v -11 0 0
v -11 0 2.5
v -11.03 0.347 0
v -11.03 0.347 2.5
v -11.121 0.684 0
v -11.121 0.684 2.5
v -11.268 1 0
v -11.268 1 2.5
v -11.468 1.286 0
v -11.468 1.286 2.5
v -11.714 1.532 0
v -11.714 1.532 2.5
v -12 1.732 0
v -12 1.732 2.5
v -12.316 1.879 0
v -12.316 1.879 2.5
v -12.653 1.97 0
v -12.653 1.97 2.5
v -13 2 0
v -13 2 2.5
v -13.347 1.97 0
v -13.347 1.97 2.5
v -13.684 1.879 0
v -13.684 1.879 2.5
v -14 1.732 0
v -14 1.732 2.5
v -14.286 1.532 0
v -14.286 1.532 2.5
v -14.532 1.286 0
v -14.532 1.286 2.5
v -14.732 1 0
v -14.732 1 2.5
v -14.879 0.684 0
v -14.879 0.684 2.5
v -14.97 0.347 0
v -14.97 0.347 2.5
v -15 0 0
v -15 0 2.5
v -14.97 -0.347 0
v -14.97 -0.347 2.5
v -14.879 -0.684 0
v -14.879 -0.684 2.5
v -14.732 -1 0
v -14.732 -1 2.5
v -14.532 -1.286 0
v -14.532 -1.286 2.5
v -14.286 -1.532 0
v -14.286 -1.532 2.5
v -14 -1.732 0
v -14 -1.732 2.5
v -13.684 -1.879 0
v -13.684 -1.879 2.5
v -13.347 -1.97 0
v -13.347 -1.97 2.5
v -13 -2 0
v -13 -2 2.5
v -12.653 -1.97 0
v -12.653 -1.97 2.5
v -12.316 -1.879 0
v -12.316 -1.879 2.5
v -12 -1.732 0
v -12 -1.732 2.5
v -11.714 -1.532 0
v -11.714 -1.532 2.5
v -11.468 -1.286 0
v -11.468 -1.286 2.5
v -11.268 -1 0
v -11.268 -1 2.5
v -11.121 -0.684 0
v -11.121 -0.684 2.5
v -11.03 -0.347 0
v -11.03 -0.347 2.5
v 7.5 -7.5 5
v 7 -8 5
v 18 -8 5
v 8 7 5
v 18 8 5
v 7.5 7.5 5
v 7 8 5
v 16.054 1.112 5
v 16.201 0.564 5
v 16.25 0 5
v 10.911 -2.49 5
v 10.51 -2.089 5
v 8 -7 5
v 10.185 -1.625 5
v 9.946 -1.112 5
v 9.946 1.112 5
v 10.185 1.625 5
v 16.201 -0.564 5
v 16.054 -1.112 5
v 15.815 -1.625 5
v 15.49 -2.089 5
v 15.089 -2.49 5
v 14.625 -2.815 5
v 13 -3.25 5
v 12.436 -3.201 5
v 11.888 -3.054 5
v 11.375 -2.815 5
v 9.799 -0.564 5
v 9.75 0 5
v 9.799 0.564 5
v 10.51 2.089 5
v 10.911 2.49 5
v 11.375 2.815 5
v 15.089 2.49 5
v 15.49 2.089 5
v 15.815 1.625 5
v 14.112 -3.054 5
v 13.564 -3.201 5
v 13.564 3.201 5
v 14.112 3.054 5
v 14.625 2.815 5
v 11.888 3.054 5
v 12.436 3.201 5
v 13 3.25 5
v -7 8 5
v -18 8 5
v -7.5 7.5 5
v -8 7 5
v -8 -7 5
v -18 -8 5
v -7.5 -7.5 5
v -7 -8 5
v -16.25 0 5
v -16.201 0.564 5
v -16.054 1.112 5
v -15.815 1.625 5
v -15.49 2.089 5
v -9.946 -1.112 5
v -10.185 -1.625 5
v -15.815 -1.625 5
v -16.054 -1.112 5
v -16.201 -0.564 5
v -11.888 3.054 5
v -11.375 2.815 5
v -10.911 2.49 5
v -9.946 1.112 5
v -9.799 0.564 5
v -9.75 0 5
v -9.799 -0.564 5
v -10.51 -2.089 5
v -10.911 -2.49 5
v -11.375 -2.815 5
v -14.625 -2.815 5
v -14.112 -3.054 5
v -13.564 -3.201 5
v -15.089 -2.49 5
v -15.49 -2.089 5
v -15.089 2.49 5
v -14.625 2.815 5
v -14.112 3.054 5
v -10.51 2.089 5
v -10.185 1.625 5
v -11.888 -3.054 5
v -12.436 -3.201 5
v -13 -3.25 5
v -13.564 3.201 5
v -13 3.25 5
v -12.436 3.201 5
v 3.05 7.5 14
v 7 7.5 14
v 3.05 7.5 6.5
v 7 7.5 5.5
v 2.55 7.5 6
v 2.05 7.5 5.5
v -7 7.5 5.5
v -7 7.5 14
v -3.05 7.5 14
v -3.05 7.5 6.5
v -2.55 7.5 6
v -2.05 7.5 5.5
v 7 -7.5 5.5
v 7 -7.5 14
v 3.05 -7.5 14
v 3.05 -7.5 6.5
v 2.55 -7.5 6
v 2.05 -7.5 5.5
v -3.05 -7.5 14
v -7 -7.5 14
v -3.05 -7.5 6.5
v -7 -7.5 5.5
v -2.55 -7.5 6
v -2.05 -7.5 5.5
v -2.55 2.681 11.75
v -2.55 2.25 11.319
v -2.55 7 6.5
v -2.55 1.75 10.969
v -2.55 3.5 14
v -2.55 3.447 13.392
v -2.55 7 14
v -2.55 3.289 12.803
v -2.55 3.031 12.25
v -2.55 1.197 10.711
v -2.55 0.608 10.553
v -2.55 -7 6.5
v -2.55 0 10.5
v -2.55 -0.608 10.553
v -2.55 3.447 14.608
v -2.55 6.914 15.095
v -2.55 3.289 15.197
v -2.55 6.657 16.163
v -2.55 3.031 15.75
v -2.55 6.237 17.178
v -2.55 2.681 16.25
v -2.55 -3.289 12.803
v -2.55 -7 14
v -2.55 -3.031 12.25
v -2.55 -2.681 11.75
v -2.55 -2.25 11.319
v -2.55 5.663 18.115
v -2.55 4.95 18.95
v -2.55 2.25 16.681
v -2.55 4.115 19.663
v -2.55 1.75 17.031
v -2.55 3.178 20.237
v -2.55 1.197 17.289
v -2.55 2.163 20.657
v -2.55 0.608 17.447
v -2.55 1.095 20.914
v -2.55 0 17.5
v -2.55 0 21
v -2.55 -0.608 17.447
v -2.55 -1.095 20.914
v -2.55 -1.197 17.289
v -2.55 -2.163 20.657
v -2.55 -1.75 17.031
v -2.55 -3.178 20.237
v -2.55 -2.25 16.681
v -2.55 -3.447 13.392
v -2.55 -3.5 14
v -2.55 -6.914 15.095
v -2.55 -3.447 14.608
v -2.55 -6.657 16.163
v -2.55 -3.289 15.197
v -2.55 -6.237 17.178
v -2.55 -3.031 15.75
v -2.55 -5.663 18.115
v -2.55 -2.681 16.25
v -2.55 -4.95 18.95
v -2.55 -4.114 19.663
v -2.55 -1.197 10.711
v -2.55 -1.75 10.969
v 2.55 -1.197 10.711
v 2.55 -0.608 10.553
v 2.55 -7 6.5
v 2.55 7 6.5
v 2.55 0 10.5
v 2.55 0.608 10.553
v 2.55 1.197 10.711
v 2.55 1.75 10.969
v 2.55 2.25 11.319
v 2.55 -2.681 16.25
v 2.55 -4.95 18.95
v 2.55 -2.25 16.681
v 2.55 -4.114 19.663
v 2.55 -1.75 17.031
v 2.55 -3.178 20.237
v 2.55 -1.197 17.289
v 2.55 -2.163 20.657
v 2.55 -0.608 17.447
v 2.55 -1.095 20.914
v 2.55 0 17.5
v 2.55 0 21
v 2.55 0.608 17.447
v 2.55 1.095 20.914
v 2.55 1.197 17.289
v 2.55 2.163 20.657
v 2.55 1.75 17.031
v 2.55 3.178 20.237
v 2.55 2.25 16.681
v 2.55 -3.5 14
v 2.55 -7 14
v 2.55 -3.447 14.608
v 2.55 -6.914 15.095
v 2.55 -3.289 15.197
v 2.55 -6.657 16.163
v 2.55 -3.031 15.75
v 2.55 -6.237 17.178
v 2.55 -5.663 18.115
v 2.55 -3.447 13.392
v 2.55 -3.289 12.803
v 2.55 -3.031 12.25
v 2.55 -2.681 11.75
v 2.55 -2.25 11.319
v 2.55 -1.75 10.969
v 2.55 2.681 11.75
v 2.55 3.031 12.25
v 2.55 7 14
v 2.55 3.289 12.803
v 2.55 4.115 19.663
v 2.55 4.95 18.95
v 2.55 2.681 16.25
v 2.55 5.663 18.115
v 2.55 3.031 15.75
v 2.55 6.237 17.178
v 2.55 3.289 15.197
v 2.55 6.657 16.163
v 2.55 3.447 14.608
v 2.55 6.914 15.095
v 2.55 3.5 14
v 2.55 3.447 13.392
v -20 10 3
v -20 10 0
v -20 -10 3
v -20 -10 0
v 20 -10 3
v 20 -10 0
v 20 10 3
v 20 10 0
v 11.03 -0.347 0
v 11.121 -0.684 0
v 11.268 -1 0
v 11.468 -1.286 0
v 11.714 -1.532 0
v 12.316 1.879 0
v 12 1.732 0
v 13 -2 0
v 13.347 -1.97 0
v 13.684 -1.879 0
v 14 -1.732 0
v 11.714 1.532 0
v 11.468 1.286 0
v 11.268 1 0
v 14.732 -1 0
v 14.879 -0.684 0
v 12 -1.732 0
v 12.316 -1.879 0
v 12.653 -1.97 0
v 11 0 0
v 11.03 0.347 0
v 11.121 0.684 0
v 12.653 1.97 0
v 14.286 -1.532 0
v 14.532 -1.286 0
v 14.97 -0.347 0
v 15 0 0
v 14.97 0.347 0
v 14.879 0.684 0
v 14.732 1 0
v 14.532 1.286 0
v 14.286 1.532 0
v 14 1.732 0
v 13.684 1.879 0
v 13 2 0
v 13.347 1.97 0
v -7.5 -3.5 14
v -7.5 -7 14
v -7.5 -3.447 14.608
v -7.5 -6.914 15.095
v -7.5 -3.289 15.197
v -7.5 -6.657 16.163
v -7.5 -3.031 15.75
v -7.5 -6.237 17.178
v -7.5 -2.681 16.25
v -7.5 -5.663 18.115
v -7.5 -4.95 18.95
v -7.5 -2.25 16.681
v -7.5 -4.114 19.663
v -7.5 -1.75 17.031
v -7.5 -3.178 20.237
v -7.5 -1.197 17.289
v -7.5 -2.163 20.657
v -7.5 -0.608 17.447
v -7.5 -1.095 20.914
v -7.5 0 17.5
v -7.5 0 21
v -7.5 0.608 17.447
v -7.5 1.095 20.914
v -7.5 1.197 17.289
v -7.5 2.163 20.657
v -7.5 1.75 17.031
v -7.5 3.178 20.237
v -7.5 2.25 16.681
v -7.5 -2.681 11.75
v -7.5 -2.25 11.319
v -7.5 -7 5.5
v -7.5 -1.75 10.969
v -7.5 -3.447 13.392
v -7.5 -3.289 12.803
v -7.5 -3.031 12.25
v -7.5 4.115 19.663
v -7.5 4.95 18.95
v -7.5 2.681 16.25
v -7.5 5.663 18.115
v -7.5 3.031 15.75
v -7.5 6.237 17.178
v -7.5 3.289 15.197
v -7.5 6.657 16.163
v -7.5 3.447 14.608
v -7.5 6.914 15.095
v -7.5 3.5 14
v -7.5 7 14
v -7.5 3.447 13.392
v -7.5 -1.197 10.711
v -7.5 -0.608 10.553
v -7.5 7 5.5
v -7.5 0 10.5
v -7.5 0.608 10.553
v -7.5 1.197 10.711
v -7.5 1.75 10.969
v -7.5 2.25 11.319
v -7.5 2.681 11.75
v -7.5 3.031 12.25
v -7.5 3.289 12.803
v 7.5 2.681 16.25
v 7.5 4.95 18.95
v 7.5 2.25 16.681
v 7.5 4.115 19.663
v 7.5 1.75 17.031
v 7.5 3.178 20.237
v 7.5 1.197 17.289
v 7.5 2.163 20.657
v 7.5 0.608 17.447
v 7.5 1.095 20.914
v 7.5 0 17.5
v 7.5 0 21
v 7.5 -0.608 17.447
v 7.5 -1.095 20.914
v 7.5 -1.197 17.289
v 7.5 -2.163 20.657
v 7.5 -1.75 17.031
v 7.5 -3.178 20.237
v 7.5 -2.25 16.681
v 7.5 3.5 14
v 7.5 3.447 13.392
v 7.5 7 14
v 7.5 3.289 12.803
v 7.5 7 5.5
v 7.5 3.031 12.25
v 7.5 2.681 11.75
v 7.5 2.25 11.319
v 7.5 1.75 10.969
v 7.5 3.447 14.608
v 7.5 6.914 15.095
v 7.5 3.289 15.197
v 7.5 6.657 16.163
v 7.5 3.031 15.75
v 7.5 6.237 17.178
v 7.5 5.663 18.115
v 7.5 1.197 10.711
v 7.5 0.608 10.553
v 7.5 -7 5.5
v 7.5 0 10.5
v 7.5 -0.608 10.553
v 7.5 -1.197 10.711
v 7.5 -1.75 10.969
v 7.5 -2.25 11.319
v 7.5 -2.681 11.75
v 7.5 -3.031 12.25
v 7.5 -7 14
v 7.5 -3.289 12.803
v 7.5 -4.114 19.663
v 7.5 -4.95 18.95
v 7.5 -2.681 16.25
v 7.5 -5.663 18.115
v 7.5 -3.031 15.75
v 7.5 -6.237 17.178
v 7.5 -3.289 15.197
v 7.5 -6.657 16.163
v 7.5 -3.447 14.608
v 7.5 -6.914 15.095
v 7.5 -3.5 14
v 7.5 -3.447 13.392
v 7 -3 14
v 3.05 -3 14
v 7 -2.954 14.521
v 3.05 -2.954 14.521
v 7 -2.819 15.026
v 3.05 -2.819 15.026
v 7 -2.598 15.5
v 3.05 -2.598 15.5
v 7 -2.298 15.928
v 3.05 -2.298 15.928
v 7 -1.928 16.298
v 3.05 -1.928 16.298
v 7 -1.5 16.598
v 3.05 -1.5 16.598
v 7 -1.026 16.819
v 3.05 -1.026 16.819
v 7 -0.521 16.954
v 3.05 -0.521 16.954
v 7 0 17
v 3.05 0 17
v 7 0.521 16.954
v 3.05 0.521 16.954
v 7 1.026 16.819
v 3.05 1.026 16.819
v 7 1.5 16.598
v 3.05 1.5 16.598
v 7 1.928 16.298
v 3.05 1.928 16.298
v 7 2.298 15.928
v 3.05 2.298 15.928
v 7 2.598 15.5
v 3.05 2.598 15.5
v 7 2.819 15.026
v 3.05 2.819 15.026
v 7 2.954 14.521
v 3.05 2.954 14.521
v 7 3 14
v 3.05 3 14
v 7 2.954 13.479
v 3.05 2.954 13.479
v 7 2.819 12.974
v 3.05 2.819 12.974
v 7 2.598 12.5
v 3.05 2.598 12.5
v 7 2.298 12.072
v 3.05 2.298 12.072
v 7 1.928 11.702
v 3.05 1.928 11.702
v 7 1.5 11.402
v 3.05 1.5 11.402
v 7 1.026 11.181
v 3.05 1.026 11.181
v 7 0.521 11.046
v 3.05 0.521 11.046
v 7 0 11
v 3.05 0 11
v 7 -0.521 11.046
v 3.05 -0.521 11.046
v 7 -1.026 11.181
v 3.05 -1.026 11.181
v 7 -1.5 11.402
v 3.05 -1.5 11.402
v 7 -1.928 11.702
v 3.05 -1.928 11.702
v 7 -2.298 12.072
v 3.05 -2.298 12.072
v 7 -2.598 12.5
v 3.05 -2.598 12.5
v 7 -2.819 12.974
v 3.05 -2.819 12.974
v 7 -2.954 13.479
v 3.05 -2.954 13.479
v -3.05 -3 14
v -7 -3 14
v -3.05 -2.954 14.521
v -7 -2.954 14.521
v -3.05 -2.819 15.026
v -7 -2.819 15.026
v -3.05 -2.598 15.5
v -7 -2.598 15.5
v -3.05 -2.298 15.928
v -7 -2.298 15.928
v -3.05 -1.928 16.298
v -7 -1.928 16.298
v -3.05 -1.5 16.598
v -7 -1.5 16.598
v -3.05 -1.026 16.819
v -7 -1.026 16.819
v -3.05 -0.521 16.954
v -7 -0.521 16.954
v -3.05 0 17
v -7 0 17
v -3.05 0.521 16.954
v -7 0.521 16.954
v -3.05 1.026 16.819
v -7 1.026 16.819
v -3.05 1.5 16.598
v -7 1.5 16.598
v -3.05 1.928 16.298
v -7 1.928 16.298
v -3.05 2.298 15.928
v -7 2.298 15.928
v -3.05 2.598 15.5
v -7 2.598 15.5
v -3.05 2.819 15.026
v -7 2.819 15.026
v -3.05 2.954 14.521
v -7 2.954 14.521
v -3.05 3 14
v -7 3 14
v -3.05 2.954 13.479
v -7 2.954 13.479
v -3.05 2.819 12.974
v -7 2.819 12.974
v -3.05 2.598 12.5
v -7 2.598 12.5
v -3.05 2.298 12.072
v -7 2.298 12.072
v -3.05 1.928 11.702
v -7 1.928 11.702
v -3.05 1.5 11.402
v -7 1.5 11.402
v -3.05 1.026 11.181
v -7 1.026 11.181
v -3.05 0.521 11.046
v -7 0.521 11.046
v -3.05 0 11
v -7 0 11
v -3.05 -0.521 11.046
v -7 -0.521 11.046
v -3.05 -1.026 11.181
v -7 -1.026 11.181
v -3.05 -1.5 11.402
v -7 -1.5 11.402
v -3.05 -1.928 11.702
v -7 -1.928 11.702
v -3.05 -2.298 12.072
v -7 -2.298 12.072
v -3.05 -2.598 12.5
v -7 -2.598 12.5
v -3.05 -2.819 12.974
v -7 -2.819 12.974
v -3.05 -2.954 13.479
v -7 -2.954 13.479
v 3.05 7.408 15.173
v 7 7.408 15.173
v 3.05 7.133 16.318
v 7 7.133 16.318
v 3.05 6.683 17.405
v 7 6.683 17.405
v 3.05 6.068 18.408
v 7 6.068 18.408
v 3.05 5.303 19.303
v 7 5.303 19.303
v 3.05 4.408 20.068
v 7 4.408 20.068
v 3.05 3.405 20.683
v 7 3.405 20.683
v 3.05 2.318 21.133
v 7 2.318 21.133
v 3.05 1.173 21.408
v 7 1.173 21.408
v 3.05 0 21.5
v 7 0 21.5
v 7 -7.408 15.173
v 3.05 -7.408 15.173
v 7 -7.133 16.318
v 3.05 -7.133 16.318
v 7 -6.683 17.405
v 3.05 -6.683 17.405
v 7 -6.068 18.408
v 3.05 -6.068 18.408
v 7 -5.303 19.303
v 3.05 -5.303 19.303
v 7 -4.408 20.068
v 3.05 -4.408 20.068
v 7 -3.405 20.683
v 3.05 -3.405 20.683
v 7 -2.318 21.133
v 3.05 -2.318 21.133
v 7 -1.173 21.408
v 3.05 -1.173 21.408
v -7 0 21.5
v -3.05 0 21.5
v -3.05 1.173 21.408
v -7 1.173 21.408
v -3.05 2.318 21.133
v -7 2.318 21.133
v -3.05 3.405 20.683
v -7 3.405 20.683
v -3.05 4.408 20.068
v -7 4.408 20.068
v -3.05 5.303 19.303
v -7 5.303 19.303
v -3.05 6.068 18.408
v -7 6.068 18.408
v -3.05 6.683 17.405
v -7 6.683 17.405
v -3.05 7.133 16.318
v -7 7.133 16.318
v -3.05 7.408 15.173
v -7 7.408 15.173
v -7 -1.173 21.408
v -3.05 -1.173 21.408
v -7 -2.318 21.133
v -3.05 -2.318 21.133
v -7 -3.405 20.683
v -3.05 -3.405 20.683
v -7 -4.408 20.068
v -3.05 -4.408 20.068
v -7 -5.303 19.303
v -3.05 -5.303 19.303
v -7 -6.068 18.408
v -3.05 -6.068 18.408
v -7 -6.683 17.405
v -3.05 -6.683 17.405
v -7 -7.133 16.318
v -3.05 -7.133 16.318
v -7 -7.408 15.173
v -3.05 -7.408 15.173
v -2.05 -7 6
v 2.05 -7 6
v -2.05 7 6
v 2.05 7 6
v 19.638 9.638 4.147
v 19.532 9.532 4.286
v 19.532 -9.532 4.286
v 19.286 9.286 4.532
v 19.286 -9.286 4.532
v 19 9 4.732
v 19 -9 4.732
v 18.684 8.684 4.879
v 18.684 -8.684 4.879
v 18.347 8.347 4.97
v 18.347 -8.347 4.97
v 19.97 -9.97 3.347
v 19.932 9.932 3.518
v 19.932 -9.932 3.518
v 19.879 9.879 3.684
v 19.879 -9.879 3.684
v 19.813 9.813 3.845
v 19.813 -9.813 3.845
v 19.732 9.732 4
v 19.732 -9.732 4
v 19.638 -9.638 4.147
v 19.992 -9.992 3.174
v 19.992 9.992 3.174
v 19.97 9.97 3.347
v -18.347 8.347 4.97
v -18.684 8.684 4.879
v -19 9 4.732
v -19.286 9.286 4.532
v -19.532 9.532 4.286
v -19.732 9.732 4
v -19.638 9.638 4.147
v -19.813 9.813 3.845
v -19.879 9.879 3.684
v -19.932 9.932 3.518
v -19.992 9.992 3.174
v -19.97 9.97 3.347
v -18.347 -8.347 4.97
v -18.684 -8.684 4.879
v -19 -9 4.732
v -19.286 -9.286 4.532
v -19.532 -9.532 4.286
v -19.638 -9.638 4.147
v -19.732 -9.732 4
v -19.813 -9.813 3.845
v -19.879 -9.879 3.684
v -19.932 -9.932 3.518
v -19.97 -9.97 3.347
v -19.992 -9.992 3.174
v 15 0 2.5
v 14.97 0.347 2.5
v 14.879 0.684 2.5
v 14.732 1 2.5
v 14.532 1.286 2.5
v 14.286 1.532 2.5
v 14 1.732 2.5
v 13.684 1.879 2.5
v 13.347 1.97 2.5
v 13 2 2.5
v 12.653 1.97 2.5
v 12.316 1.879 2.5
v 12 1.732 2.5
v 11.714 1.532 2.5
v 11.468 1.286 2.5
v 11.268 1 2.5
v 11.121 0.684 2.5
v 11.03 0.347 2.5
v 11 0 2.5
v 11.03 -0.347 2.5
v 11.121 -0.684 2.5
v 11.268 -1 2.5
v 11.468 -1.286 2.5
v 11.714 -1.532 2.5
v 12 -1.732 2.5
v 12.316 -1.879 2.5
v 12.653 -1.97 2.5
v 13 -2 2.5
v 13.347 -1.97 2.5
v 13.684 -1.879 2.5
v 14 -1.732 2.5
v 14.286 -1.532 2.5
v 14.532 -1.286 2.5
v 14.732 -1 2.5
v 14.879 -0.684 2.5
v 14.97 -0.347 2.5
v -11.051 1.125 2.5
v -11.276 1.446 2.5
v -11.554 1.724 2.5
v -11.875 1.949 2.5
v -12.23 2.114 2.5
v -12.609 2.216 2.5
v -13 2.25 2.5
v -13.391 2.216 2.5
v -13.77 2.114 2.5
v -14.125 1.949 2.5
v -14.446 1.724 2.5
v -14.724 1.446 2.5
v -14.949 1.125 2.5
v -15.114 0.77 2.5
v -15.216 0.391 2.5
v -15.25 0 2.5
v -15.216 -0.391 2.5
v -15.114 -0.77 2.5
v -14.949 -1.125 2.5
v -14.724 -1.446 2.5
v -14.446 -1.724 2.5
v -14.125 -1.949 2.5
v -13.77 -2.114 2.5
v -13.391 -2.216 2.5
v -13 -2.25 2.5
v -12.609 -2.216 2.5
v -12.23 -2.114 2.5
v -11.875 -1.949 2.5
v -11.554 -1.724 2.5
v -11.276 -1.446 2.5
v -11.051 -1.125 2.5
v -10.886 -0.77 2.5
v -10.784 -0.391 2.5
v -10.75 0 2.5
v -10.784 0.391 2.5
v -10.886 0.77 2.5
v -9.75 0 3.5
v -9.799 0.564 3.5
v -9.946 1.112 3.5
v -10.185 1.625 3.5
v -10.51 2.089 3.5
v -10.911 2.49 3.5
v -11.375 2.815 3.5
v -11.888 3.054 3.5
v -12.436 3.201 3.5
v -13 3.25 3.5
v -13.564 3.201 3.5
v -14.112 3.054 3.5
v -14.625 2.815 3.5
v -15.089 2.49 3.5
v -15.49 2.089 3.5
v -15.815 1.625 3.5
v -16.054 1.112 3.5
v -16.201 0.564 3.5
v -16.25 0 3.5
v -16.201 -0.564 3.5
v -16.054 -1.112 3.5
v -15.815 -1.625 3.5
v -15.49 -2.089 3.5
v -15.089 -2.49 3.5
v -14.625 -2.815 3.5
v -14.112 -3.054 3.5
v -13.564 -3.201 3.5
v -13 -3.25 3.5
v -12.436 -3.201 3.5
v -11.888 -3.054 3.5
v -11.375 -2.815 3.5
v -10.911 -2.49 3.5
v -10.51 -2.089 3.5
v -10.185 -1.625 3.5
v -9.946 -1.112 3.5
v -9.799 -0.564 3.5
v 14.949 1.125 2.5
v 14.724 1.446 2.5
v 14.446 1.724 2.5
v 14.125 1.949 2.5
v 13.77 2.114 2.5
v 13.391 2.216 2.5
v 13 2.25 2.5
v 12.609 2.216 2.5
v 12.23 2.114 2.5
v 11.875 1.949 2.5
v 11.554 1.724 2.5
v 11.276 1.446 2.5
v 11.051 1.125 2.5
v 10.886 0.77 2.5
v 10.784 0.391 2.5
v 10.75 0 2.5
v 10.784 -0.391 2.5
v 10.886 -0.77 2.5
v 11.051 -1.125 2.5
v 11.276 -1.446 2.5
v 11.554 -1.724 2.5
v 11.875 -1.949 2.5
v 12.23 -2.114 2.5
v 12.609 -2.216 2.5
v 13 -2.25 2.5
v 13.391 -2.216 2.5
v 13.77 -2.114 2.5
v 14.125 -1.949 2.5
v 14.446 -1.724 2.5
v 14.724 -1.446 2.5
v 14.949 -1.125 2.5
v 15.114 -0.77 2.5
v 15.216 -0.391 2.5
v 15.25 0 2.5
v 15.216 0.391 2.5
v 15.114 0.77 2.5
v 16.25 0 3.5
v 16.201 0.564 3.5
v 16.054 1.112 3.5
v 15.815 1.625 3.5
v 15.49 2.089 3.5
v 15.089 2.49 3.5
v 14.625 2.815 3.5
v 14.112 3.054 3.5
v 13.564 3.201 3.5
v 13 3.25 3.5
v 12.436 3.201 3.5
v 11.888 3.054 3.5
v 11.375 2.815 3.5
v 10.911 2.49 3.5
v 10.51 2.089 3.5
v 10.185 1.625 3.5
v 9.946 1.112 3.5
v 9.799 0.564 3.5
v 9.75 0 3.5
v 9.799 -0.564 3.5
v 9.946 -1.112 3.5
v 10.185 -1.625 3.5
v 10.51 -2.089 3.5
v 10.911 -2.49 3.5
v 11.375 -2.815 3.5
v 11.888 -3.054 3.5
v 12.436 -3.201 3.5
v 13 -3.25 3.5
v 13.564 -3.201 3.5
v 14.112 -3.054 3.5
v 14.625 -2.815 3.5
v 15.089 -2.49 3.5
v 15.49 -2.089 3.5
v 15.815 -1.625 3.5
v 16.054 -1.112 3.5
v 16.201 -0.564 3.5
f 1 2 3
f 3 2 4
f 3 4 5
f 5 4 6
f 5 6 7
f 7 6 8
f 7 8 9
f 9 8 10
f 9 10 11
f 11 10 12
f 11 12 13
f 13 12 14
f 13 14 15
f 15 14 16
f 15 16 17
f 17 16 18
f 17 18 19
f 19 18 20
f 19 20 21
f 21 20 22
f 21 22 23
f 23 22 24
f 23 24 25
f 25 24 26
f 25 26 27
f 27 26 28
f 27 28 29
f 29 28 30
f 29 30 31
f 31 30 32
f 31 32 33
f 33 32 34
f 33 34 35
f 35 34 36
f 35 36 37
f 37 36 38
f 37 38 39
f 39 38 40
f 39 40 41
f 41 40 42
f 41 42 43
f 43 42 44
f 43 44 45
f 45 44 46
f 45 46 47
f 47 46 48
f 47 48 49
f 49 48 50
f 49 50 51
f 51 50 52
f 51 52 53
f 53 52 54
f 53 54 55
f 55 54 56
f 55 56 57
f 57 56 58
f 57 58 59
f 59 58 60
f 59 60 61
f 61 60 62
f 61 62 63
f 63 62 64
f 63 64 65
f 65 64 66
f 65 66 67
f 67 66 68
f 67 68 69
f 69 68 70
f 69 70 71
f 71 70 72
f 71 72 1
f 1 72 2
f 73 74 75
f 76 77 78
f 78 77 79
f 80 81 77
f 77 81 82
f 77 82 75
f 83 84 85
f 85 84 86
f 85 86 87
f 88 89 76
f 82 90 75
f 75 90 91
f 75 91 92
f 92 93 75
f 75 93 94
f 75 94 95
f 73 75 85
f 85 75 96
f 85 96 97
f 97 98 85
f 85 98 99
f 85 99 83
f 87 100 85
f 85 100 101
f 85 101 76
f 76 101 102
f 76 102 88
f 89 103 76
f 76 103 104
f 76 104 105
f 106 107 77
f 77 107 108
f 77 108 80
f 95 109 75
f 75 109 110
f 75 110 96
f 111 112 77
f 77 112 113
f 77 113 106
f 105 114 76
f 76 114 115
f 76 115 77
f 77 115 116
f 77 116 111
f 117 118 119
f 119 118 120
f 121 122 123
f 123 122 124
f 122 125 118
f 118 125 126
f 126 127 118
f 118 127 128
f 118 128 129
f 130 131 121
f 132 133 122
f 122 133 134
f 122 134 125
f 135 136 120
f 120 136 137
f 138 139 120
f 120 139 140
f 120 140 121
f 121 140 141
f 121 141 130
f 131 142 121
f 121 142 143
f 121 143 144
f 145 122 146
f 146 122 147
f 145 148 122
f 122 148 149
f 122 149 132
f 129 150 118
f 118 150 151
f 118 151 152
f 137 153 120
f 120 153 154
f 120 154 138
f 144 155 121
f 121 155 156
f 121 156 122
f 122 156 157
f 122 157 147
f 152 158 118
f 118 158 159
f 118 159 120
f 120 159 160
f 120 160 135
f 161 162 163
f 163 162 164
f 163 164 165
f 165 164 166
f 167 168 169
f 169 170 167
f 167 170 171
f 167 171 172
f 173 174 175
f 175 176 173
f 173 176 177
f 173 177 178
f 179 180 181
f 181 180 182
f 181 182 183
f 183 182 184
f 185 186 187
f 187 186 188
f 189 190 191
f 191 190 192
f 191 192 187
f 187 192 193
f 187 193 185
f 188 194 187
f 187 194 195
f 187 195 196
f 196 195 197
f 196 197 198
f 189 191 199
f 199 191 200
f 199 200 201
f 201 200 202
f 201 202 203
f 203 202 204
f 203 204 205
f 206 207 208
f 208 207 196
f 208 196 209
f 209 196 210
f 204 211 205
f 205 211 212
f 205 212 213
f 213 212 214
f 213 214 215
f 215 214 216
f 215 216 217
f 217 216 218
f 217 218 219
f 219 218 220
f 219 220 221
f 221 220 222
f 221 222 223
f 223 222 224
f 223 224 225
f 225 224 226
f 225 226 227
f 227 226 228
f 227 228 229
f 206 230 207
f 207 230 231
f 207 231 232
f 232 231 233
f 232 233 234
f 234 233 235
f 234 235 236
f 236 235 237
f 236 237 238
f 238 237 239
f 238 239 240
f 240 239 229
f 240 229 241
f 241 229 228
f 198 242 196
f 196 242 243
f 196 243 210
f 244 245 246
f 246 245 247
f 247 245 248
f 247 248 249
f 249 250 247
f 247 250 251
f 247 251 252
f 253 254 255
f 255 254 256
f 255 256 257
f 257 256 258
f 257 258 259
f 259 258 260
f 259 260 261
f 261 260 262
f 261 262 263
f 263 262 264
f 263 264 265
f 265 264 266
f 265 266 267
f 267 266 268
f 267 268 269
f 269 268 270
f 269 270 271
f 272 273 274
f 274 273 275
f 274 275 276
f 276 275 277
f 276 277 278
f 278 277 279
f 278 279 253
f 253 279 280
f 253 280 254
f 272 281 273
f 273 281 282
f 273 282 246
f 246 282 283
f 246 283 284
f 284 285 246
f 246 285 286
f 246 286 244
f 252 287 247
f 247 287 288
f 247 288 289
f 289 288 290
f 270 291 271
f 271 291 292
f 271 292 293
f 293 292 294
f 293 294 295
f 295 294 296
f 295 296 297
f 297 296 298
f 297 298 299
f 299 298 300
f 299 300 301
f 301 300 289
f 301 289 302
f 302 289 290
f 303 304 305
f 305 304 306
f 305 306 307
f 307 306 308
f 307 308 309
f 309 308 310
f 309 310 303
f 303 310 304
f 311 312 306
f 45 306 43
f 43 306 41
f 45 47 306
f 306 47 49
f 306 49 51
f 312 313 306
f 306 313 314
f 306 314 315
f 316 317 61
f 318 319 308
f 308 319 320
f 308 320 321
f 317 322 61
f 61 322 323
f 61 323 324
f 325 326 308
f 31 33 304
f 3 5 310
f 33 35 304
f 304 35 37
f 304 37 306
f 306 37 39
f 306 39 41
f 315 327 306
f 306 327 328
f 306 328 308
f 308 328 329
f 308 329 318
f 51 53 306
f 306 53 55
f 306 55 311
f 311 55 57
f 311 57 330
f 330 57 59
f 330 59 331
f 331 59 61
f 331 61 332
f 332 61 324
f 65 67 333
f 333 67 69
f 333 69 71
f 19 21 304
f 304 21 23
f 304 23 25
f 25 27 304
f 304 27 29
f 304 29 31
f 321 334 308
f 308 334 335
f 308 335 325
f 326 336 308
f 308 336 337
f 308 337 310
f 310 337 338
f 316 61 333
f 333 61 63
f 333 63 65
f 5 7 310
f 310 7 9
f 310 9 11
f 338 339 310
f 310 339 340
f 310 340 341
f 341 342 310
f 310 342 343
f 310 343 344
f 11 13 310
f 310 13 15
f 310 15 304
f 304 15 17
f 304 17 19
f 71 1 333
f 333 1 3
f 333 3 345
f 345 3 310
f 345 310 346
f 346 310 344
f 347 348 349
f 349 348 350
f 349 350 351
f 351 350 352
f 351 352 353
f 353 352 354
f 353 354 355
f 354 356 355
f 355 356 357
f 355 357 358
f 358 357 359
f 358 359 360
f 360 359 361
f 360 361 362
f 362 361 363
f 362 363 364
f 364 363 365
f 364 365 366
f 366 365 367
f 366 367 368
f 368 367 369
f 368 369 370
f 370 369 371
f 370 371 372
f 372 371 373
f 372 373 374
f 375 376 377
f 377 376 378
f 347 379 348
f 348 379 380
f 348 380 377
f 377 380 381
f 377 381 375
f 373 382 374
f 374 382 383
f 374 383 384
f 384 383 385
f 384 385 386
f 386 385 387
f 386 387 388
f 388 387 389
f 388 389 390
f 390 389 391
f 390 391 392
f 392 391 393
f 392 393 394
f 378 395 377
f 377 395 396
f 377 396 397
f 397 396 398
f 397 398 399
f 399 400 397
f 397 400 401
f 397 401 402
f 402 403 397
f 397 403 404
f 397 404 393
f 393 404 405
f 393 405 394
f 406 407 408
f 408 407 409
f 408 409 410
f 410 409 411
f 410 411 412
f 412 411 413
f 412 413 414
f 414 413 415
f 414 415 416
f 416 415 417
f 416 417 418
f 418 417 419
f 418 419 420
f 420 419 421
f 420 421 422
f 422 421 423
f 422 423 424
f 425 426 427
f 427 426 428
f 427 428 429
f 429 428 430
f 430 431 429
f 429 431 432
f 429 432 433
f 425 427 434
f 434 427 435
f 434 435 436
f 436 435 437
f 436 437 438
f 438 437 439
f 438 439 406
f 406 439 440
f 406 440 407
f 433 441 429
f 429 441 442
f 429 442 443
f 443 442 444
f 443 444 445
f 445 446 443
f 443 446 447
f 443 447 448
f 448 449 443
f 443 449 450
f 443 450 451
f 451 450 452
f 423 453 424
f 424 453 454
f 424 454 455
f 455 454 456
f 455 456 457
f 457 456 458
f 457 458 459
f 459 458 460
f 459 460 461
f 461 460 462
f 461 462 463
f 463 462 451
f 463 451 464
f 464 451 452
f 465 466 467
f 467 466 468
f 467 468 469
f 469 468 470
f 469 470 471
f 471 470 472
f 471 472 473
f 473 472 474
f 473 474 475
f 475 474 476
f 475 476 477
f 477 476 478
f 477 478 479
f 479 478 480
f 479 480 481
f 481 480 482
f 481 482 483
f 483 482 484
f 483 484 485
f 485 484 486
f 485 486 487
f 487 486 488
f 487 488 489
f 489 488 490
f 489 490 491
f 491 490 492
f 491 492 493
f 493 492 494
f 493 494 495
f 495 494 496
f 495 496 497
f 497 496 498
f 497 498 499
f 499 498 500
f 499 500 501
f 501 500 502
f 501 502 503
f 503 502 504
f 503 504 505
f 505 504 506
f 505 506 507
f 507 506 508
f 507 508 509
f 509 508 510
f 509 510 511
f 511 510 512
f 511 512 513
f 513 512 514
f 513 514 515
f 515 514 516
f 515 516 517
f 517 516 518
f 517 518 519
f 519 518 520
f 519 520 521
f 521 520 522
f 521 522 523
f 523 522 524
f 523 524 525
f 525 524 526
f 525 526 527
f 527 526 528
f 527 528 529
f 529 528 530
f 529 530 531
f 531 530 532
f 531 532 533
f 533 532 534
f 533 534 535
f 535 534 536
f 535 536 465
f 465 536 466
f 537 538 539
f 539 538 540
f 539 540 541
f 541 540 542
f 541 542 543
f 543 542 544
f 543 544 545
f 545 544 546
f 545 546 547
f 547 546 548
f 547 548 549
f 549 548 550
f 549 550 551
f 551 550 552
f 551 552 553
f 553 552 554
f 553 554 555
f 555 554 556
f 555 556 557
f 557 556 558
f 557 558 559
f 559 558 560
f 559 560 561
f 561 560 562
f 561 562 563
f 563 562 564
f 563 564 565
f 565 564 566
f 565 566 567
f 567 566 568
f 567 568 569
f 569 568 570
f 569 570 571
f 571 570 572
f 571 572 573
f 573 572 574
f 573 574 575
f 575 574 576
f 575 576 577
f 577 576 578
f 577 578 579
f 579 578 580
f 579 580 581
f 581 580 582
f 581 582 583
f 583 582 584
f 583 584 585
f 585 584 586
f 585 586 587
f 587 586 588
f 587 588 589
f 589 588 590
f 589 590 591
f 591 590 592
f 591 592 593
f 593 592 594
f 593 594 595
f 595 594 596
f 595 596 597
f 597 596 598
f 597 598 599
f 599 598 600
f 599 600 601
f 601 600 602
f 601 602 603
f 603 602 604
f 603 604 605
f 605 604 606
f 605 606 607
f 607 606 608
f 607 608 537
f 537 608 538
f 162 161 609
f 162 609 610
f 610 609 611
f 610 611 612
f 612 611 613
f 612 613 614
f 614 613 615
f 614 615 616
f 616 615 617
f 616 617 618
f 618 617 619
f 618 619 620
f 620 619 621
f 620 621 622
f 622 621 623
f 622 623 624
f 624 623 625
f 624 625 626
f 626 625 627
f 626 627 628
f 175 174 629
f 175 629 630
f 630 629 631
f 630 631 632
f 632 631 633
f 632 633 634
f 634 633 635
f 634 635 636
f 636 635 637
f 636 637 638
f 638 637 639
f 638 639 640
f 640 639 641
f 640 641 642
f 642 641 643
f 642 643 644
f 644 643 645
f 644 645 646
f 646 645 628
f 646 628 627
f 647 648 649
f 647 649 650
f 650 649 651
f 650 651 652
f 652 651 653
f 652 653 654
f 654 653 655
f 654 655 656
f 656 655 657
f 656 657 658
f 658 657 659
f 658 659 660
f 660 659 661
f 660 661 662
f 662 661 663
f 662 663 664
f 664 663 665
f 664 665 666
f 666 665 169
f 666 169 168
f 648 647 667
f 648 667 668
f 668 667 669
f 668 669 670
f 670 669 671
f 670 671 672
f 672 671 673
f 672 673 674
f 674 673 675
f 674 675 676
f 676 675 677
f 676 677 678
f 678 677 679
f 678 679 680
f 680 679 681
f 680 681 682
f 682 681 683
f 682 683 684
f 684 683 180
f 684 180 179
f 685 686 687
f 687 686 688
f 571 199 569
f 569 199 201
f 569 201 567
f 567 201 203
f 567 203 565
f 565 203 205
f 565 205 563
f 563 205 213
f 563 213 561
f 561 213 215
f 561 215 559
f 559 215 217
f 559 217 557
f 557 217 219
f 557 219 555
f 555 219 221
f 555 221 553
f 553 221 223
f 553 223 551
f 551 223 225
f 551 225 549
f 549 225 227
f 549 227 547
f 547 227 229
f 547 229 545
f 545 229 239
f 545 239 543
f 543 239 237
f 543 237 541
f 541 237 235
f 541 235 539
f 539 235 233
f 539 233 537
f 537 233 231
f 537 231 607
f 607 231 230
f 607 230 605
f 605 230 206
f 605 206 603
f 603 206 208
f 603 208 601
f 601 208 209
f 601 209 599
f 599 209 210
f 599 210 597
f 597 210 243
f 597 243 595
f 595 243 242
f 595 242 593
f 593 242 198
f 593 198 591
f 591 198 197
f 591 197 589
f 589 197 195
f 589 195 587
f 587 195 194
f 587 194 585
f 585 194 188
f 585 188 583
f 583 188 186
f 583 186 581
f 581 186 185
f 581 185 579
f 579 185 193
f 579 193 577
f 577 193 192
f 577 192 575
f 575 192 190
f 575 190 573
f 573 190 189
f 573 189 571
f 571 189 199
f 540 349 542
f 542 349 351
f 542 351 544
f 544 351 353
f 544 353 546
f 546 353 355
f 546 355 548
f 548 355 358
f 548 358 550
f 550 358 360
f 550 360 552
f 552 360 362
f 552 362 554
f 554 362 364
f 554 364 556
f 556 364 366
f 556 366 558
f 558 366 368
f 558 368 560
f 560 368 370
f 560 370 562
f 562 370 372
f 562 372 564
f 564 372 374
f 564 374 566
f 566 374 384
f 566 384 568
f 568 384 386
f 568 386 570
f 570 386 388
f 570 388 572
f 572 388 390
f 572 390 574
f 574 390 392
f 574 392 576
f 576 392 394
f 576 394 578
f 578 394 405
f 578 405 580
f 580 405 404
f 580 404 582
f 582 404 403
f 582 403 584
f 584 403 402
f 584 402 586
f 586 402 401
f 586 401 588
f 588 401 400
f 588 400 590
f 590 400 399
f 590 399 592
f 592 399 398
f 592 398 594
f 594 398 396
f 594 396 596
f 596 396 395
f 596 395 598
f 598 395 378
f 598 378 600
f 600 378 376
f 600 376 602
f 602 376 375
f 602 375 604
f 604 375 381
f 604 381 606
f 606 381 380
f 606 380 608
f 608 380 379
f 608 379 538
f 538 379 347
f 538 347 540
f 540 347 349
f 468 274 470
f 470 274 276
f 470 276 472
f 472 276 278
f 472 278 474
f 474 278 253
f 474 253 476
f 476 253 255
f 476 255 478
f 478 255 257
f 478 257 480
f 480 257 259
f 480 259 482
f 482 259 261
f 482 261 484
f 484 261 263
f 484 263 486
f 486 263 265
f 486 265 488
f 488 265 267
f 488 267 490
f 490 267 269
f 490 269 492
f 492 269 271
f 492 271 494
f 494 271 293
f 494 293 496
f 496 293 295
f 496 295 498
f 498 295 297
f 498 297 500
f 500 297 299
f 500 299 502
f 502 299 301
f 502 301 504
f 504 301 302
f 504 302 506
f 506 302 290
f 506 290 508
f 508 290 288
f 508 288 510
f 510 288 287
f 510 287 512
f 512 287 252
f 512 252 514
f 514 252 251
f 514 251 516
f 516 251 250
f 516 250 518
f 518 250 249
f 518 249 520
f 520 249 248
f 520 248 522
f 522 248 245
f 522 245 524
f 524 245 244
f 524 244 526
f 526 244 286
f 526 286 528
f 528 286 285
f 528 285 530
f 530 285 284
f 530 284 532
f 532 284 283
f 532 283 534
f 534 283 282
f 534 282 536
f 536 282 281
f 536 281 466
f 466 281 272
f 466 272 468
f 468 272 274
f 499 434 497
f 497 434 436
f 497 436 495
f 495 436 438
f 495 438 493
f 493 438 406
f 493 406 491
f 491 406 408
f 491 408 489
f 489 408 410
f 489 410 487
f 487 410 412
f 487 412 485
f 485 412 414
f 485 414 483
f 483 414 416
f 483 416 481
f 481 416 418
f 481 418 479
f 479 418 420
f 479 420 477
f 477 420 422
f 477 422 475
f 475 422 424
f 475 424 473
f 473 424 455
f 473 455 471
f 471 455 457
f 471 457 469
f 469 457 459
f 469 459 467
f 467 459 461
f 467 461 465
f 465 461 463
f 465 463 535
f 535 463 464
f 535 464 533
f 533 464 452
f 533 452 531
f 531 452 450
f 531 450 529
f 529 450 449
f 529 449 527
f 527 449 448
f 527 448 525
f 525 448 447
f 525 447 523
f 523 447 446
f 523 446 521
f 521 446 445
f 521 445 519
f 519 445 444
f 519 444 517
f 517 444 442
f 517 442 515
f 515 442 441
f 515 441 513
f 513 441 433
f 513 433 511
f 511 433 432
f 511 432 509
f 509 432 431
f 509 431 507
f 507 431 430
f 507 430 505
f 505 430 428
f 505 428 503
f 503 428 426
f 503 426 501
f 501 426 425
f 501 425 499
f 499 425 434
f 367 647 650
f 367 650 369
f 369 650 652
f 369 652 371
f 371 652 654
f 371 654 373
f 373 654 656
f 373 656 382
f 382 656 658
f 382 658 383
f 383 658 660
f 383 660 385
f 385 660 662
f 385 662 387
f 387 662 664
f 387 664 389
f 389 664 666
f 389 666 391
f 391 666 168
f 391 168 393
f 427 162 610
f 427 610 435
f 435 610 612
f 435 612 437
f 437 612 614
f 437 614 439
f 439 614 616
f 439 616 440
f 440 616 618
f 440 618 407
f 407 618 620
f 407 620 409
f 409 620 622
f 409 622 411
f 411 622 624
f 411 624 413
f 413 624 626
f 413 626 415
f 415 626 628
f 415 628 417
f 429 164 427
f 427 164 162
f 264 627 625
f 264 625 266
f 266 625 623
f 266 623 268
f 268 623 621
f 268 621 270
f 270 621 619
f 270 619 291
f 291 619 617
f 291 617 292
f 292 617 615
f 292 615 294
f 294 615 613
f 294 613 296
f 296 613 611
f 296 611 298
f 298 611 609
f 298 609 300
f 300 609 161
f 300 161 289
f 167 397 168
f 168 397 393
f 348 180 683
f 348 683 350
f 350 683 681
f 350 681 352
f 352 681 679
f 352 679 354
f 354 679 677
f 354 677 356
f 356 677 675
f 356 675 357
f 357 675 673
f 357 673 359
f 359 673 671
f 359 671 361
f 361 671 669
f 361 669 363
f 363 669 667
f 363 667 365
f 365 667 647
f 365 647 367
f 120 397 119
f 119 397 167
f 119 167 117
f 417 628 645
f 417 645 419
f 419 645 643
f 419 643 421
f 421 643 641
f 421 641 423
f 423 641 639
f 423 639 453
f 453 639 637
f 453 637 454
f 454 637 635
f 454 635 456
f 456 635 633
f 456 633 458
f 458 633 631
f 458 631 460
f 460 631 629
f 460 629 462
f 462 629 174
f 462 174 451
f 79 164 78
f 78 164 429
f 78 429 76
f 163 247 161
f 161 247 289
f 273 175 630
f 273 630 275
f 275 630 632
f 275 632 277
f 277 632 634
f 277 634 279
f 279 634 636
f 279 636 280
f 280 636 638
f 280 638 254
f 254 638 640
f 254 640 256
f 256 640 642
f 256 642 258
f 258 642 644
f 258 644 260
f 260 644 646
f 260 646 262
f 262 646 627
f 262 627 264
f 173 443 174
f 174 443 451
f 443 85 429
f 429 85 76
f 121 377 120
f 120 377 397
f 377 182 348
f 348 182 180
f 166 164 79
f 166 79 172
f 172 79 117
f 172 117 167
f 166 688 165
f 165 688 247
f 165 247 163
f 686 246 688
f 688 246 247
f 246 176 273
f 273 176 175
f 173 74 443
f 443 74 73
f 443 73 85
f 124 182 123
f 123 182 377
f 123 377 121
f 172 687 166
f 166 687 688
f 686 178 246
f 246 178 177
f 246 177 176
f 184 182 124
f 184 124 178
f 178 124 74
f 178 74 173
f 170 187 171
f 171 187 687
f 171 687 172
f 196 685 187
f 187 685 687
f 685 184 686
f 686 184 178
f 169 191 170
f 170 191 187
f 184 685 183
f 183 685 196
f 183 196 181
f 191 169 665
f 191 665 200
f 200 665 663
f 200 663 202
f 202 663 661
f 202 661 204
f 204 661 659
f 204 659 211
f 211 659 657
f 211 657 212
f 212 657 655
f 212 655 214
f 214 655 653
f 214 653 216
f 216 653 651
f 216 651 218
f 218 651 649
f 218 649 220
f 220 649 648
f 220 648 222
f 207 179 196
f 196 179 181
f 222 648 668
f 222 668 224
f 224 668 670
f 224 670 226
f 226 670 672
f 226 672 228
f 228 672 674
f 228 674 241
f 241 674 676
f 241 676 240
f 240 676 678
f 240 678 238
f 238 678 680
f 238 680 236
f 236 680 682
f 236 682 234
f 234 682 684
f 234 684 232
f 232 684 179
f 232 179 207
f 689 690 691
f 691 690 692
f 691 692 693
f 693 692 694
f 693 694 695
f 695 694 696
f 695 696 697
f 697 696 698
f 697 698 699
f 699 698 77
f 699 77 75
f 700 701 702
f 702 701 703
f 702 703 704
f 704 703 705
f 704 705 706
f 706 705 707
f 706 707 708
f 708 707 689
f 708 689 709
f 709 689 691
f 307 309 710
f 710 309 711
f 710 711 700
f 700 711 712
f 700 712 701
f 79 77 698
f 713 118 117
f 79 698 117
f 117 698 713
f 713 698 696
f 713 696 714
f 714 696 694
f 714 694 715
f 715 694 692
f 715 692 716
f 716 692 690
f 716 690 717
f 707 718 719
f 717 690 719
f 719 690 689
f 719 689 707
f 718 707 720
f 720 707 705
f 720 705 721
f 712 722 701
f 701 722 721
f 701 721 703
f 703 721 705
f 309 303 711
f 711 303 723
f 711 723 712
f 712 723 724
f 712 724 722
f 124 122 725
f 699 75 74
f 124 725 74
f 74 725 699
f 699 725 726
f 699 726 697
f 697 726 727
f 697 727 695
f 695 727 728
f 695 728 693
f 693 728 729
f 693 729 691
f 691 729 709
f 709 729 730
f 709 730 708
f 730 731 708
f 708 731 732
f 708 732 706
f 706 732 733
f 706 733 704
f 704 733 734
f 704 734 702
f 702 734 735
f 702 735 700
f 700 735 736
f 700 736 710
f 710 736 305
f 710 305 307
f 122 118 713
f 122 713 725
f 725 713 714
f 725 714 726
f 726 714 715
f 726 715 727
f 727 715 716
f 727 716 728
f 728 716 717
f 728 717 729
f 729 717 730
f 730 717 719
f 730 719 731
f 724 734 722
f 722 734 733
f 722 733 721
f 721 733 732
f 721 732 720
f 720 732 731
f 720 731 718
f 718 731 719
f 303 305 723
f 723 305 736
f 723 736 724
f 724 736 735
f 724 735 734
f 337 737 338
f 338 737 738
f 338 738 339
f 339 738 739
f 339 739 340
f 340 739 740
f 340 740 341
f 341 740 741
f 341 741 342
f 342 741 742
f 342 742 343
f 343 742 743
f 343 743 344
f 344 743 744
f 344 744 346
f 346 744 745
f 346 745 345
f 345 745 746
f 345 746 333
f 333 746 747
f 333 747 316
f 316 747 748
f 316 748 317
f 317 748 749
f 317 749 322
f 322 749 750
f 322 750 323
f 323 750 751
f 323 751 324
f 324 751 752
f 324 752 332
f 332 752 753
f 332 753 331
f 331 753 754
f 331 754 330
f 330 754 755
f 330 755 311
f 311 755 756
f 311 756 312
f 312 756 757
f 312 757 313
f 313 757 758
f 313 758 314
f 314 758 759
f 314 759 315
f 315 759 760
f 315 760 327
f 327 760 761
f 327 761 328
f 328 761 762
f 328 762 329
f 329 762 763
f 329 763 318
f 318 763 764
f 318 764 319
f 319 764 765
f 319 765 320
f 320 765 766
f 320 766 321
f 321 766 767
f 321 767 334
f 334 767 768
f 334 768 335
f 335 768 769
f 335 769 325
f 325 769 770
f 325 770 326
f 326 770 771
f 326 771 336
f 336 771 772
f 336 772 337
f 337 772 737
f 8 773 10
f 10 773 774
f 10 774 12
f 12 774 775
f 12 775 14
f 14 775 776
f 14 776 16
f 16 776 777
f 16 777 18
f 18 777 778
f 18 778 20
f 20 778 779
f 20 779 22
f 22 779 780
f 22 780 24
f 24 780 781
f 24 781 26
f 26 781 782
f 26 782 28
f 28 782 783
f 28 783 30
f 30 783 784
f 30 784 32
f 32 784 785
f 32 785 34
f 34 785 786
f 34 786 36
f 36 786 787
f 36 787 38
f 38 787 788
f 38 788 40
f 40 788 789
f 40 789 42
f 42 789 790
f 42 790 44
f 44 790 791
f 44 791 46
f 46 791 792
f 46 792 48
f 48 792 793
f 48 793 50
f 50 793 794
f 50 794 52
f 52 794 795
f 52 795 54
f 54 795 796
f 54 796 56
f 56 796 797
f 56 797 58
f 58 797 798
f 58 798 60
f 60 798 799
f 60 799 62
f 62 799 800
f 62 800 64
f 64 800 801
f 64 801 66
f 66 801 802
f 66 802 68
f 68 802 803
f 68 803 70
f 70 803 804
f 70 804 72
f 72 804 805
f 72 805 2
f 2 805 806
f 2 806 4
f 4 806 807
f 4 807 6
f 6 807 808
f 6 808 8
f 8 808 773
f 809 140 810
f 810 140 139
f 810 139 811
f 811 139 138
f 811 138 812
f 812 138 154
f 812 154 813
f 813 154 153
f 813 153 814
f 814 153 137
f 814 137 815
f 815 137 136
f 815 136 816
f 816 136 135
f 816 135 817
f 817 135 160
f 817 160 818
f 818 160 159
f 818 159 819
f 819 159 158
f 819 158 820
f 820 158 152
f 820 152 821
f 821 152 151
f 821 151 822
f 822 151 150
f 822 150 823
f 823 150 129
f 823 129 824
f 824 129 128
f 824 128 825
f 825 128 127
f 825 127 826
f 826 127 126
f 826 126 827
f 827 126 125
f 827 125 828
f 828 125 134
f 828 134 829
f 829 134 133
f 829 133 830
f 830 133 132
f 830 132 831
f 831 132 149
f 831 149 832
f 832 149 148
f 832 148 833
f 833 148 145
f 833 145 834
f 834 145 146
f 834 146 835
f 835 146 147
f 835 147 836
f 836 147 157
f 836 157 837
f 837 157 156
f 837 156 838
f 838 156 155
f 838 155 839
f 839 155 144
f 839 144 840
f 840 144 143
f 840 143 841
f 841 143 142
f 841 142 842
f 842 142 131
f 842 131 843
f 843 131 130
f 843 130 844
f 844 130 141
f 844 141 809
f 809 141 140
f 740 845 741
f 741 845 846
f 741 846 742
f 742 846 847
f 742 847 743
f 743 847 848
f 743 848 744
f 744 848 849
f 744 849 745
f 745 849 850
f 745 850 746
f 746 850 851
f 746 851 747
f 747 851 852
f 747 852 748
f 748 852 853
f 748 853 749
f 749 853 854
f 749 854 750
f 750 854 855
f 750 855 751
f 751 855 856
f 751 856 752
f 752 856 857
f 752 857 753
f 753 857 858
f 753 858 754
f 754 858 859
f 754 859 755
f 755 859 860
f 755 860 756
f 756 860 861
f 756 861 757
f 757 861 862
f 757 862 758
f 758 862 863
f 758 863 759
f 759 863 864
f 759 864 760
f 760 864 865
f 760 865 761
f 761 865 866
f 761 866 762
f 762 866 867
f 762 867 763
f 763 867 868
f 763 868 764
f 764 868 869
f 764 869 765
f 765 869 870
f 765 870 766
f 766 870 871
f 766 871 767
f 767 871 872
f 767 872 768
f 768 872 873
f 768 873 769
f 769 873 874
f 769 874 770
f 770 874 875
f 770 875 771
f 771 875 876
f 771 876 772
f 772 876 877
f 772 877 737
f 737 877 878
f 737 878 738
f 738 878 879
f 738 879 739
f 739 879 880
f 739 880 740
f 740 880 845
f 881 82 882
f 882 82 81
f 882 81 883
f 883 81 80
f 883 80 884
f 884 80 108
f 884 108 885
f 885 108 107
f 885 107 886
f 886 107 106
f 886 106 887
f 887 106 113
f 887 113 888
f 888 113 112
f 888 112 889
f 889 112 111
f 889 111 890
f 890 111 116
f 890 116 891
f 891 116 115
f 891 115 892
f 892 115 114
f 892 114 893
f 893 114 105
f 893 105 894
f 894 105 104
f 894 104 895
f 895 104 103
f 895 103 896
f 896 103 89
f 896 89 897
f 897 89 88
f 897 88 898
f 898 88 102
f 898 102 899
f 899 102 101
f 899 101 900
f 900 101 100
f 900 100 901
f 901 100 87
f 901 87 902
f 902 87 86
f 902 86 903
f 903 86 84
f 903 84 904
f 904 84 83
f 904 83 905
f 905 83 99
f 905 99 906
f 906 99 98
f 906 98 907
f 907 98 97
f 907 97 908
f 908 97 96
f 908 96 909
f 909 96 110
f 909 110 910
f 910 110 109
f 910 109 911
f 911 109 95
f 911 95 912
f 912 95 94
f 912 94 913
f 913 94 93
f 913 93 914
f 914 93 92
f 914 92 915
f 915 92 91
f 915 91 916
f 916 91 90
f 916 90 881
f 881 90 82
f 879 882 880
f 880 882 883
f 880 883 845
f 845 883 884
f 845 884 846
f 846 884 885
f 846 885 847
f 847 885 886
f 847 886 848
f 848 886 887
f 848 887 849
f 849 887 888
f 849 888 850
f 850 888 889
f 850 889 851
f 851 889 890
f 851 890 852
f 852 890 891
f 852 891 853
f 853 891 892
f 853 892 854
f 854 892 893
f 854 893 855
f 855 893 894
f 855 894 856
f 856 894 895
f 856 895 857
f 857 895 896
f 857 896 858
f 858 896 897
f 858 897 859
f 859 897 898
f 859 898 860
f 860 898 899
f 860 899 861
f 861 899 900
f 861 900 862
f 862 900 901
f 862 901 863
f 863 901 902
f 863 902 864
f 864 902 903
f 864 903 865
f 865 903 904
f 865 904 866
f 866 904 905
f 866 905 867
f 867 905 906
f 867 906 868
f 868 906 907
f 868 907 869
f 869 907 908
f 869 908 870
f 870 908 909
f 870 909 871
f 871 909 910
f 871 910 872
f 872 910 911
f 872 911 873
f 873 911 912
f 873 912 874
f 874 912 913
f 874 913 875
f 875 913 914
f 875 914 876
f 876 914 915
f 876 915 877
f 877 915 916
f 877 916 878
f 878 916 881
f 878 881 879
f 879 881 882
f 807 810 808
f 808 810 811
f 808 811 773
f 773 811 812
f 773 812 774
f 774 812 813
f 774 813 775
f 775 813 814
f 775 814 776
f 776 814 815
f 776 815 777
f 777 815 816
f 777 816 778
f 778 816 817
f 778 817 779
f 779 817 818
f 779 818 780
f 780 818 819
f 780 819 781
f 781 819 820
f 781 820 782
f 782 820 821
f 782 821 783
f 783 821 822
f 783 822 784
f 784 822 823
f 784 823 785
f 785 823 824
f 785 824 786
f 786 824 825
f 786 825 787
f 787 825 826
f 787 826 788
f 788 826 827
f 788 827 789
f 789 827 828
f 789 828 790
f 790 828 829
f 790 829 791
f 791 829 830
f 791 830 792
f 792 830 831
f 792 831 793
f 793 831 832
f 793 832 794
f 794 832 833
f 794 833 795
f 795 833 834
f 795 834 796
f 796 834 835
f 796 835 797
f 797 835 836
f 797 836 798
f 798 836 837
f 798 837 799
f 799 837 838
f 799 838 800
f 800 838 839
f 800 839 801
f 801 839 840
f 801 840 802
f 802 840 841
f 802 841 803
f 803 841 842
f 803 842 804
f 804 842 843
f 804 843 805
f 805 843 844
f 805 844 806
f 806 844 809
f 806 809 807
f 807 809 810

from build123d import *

# Parameters (mm, degrees)
SKETCH1_W               = 40
SKETCH1_H               = 20
BOSS_EXTRUDE1_DEPTH     = 5
SKETCH2_W               = 4.95
SKETCH2_H               = 15
BOSS_EXTRUDE2_DEPTH     = 16.5
CUT_EXTRUDE1_DEPTH      = 37.311155311
CUT_EXTRUDE1_DEPTH_BACK = 37.311155311
SKETCH3_R               = 3
FILLET1_R               = 7.5
SKETCH4_W               = 5.1
SKETCH4_H               = 15
BOSS_EXTRUDE3_DEPTH     = 1
CHAMFER1_SIZE           = 0.5
FILLET2_R               = 2
CUT_EXTRUDE2_DEPTH      = 28.789386463
CUT_EXTRUDE2_DEPTH_BACK = 28.789386463
SKETCH5_R               = 2
SKETCH7_R               = 3.25
CUT_EXTRUDE3_DEPTH      = 2.5
CHAMFER2_SIZE           = 1


with BuildPart() as part:
    # Sketch1 → Boss-Extrude1 (new body)
    with BuildSketch(Plane.XY):
        Rectangle(SKETCH1_W, SKETCH1_H)
    extrude(amount=BOSS_EXTRUDE1_DEPTH)

    # Sketch2 → Boss-Extrude2 (add)
    with BuildSketch(Plane.XY.offset(5)):
        with Locations((-5.025, 0)):
            Rectangle(SKETCH2_W, SKETCH2_H)
        with Locations((5.025, 0)):
            Rectangle(SKETCH2_W, SKETCH2_H)
    extrude(amount=BOSS_EXTRUDE2_DEPTH)

    # Sketch3 → Cut-Extrude1 (cut, two sides: drawn at the far end of the back side and taken through both)
    with BuildSketch(Plane.ZY.offset(7.5).offset(-CUT_EXTRUDE1_DEPTH_BACK)):
        with Locations(Location((14, 0, 0), (0, 0, 270))):
            Circle(SKETCH3_R)
    extrude(amount=CUT_EXTRUDE1_DEPTH + CUT_EXTRUDE1_DEPTH_BACK, mode=Mode.SUBTRACT)

    # Fillet1
    fillet1_edges = [part.edges().sort_by_distance(p)[0] for p in [
        (5.025, -7.5, 21.5),
        (5.025, 7.5, 21.5),
        (-5.025, -7.5, 21.5),
        (-5.025, 7.5, 21.5),
    ]]
    fillet(fillet1_edges, radius=FILLET1_R - 0.0001)  # a hair under: the kernel refuses the full size

    # Sketch4 → Boss-Extrude3 (add)
    with BuildSketch(Plane.XY.offset(5)):
        Rectangle(SKETCH4_W, SKETCH4_H)
    extrude(amount=BOSS_EXTRUDE3_DEPTH)

    # Chamfer1
    chamfer1_edges = [part.edges().sort_by_distance(p)[0] for p in [
        (0, 7.5, 5),
        (-7.5, 0, 5),
        (0, -7.5, 5),
        (7.5, 0, 5),
        (-7.5, 3, 14),
        (-2.55, 3, 14),
        (2.55, 3, 14),
        (7.5, 3, 14),
        (7.5, 7.5, 9.50005),
        (7.5, -7.5, 9.50005),
        (7.5, 5.303330148, 19.303330148),
        (7.5, -5.303330148, 19.303330148),
        (2.55, -7.5, 10.00005),
        (2.55, 7.5, 10.00005),
        (2.55, 5.303330148, 19.303330148),
        (2.55, -5.303330148, 19.303330148),
        (-2.55, 7.5, 10.00005),
        (-2.55, -7.5, 10.00005),
        (-2.55, 5.303330148, 19.303330148),
        (-2.55, -5.303330148, 19.303330148),
        (-7.5, -7.5, 9.50005),
        (-7.5, 7.5, 9.50005),
        (-7.5, 5.303330148, 19.303330148),
        (-7.5, -5.303330148, 19.303330148),
        (2.55, 0, 6),
        (0, 7.5, 6),
        (-2.55, 0, 6),
        (0, -7.5, 6),
    ]]
    chamfer(chamfer1_edges, length=CHAMFER1_SIZE - 0.0001)  # a hair under: the kernel refuses the full size

    # Fillet2
    fillet2_edges = [part.edges().sort_by_distance(p)[0] for p in [
        (20, 0, 5),
        (0, 10, 5),
        (-20, 0, 5),
        (0, -10, 5),
    ]]
    fillet(fillet2_edges, radius=FILLET2_R)

    # Sketch5 → Cut-Extrude2 (cut, two sides: drawn at the far end of the back side and taken through both)
    with BuildSketch(Plane.XY.offset(5).offset(-CUT_EXTRUDE2_DEPTH_BACK)):
        with Locations((-13, 0)):
            Circle(SKETCH5_R)
        with Locations(Location((13, 0, 0), (0, 0, 180))):
            Circle(SKETCH5_R)
    extrude(amount=CUT_EXTRUDE2_DEPTH + CUT_EXTRUDE2_DEPTH_BACK, mode=Mode.SUBTRACT)

    # Sketch7 → Cut-Extrude3 (cut)
    with BuildSketch(Plane.XY.offset(5)):
        with Locations((-13, 0)):
            Circle(SKETCH7_R)
        with Locations(Location((13, 0, 0), (0, 0, 180))):
            Circle(SKETCH7_R)
    extrude(amount=-CUT_EXTRUDE3_DEPTH, mode=Mode.SUBTRACT)

    # Chamfer2
    chamfer2_edges = [part.edges().sort_by_distance(p)[0] for p in [
        (-16.25, 0, 2.5),
        (16.25, 0, 2.5),
    ]]
    chamfer(chamfer2_edges, length=CHAMFER2_SIZE)


solid = part.part
